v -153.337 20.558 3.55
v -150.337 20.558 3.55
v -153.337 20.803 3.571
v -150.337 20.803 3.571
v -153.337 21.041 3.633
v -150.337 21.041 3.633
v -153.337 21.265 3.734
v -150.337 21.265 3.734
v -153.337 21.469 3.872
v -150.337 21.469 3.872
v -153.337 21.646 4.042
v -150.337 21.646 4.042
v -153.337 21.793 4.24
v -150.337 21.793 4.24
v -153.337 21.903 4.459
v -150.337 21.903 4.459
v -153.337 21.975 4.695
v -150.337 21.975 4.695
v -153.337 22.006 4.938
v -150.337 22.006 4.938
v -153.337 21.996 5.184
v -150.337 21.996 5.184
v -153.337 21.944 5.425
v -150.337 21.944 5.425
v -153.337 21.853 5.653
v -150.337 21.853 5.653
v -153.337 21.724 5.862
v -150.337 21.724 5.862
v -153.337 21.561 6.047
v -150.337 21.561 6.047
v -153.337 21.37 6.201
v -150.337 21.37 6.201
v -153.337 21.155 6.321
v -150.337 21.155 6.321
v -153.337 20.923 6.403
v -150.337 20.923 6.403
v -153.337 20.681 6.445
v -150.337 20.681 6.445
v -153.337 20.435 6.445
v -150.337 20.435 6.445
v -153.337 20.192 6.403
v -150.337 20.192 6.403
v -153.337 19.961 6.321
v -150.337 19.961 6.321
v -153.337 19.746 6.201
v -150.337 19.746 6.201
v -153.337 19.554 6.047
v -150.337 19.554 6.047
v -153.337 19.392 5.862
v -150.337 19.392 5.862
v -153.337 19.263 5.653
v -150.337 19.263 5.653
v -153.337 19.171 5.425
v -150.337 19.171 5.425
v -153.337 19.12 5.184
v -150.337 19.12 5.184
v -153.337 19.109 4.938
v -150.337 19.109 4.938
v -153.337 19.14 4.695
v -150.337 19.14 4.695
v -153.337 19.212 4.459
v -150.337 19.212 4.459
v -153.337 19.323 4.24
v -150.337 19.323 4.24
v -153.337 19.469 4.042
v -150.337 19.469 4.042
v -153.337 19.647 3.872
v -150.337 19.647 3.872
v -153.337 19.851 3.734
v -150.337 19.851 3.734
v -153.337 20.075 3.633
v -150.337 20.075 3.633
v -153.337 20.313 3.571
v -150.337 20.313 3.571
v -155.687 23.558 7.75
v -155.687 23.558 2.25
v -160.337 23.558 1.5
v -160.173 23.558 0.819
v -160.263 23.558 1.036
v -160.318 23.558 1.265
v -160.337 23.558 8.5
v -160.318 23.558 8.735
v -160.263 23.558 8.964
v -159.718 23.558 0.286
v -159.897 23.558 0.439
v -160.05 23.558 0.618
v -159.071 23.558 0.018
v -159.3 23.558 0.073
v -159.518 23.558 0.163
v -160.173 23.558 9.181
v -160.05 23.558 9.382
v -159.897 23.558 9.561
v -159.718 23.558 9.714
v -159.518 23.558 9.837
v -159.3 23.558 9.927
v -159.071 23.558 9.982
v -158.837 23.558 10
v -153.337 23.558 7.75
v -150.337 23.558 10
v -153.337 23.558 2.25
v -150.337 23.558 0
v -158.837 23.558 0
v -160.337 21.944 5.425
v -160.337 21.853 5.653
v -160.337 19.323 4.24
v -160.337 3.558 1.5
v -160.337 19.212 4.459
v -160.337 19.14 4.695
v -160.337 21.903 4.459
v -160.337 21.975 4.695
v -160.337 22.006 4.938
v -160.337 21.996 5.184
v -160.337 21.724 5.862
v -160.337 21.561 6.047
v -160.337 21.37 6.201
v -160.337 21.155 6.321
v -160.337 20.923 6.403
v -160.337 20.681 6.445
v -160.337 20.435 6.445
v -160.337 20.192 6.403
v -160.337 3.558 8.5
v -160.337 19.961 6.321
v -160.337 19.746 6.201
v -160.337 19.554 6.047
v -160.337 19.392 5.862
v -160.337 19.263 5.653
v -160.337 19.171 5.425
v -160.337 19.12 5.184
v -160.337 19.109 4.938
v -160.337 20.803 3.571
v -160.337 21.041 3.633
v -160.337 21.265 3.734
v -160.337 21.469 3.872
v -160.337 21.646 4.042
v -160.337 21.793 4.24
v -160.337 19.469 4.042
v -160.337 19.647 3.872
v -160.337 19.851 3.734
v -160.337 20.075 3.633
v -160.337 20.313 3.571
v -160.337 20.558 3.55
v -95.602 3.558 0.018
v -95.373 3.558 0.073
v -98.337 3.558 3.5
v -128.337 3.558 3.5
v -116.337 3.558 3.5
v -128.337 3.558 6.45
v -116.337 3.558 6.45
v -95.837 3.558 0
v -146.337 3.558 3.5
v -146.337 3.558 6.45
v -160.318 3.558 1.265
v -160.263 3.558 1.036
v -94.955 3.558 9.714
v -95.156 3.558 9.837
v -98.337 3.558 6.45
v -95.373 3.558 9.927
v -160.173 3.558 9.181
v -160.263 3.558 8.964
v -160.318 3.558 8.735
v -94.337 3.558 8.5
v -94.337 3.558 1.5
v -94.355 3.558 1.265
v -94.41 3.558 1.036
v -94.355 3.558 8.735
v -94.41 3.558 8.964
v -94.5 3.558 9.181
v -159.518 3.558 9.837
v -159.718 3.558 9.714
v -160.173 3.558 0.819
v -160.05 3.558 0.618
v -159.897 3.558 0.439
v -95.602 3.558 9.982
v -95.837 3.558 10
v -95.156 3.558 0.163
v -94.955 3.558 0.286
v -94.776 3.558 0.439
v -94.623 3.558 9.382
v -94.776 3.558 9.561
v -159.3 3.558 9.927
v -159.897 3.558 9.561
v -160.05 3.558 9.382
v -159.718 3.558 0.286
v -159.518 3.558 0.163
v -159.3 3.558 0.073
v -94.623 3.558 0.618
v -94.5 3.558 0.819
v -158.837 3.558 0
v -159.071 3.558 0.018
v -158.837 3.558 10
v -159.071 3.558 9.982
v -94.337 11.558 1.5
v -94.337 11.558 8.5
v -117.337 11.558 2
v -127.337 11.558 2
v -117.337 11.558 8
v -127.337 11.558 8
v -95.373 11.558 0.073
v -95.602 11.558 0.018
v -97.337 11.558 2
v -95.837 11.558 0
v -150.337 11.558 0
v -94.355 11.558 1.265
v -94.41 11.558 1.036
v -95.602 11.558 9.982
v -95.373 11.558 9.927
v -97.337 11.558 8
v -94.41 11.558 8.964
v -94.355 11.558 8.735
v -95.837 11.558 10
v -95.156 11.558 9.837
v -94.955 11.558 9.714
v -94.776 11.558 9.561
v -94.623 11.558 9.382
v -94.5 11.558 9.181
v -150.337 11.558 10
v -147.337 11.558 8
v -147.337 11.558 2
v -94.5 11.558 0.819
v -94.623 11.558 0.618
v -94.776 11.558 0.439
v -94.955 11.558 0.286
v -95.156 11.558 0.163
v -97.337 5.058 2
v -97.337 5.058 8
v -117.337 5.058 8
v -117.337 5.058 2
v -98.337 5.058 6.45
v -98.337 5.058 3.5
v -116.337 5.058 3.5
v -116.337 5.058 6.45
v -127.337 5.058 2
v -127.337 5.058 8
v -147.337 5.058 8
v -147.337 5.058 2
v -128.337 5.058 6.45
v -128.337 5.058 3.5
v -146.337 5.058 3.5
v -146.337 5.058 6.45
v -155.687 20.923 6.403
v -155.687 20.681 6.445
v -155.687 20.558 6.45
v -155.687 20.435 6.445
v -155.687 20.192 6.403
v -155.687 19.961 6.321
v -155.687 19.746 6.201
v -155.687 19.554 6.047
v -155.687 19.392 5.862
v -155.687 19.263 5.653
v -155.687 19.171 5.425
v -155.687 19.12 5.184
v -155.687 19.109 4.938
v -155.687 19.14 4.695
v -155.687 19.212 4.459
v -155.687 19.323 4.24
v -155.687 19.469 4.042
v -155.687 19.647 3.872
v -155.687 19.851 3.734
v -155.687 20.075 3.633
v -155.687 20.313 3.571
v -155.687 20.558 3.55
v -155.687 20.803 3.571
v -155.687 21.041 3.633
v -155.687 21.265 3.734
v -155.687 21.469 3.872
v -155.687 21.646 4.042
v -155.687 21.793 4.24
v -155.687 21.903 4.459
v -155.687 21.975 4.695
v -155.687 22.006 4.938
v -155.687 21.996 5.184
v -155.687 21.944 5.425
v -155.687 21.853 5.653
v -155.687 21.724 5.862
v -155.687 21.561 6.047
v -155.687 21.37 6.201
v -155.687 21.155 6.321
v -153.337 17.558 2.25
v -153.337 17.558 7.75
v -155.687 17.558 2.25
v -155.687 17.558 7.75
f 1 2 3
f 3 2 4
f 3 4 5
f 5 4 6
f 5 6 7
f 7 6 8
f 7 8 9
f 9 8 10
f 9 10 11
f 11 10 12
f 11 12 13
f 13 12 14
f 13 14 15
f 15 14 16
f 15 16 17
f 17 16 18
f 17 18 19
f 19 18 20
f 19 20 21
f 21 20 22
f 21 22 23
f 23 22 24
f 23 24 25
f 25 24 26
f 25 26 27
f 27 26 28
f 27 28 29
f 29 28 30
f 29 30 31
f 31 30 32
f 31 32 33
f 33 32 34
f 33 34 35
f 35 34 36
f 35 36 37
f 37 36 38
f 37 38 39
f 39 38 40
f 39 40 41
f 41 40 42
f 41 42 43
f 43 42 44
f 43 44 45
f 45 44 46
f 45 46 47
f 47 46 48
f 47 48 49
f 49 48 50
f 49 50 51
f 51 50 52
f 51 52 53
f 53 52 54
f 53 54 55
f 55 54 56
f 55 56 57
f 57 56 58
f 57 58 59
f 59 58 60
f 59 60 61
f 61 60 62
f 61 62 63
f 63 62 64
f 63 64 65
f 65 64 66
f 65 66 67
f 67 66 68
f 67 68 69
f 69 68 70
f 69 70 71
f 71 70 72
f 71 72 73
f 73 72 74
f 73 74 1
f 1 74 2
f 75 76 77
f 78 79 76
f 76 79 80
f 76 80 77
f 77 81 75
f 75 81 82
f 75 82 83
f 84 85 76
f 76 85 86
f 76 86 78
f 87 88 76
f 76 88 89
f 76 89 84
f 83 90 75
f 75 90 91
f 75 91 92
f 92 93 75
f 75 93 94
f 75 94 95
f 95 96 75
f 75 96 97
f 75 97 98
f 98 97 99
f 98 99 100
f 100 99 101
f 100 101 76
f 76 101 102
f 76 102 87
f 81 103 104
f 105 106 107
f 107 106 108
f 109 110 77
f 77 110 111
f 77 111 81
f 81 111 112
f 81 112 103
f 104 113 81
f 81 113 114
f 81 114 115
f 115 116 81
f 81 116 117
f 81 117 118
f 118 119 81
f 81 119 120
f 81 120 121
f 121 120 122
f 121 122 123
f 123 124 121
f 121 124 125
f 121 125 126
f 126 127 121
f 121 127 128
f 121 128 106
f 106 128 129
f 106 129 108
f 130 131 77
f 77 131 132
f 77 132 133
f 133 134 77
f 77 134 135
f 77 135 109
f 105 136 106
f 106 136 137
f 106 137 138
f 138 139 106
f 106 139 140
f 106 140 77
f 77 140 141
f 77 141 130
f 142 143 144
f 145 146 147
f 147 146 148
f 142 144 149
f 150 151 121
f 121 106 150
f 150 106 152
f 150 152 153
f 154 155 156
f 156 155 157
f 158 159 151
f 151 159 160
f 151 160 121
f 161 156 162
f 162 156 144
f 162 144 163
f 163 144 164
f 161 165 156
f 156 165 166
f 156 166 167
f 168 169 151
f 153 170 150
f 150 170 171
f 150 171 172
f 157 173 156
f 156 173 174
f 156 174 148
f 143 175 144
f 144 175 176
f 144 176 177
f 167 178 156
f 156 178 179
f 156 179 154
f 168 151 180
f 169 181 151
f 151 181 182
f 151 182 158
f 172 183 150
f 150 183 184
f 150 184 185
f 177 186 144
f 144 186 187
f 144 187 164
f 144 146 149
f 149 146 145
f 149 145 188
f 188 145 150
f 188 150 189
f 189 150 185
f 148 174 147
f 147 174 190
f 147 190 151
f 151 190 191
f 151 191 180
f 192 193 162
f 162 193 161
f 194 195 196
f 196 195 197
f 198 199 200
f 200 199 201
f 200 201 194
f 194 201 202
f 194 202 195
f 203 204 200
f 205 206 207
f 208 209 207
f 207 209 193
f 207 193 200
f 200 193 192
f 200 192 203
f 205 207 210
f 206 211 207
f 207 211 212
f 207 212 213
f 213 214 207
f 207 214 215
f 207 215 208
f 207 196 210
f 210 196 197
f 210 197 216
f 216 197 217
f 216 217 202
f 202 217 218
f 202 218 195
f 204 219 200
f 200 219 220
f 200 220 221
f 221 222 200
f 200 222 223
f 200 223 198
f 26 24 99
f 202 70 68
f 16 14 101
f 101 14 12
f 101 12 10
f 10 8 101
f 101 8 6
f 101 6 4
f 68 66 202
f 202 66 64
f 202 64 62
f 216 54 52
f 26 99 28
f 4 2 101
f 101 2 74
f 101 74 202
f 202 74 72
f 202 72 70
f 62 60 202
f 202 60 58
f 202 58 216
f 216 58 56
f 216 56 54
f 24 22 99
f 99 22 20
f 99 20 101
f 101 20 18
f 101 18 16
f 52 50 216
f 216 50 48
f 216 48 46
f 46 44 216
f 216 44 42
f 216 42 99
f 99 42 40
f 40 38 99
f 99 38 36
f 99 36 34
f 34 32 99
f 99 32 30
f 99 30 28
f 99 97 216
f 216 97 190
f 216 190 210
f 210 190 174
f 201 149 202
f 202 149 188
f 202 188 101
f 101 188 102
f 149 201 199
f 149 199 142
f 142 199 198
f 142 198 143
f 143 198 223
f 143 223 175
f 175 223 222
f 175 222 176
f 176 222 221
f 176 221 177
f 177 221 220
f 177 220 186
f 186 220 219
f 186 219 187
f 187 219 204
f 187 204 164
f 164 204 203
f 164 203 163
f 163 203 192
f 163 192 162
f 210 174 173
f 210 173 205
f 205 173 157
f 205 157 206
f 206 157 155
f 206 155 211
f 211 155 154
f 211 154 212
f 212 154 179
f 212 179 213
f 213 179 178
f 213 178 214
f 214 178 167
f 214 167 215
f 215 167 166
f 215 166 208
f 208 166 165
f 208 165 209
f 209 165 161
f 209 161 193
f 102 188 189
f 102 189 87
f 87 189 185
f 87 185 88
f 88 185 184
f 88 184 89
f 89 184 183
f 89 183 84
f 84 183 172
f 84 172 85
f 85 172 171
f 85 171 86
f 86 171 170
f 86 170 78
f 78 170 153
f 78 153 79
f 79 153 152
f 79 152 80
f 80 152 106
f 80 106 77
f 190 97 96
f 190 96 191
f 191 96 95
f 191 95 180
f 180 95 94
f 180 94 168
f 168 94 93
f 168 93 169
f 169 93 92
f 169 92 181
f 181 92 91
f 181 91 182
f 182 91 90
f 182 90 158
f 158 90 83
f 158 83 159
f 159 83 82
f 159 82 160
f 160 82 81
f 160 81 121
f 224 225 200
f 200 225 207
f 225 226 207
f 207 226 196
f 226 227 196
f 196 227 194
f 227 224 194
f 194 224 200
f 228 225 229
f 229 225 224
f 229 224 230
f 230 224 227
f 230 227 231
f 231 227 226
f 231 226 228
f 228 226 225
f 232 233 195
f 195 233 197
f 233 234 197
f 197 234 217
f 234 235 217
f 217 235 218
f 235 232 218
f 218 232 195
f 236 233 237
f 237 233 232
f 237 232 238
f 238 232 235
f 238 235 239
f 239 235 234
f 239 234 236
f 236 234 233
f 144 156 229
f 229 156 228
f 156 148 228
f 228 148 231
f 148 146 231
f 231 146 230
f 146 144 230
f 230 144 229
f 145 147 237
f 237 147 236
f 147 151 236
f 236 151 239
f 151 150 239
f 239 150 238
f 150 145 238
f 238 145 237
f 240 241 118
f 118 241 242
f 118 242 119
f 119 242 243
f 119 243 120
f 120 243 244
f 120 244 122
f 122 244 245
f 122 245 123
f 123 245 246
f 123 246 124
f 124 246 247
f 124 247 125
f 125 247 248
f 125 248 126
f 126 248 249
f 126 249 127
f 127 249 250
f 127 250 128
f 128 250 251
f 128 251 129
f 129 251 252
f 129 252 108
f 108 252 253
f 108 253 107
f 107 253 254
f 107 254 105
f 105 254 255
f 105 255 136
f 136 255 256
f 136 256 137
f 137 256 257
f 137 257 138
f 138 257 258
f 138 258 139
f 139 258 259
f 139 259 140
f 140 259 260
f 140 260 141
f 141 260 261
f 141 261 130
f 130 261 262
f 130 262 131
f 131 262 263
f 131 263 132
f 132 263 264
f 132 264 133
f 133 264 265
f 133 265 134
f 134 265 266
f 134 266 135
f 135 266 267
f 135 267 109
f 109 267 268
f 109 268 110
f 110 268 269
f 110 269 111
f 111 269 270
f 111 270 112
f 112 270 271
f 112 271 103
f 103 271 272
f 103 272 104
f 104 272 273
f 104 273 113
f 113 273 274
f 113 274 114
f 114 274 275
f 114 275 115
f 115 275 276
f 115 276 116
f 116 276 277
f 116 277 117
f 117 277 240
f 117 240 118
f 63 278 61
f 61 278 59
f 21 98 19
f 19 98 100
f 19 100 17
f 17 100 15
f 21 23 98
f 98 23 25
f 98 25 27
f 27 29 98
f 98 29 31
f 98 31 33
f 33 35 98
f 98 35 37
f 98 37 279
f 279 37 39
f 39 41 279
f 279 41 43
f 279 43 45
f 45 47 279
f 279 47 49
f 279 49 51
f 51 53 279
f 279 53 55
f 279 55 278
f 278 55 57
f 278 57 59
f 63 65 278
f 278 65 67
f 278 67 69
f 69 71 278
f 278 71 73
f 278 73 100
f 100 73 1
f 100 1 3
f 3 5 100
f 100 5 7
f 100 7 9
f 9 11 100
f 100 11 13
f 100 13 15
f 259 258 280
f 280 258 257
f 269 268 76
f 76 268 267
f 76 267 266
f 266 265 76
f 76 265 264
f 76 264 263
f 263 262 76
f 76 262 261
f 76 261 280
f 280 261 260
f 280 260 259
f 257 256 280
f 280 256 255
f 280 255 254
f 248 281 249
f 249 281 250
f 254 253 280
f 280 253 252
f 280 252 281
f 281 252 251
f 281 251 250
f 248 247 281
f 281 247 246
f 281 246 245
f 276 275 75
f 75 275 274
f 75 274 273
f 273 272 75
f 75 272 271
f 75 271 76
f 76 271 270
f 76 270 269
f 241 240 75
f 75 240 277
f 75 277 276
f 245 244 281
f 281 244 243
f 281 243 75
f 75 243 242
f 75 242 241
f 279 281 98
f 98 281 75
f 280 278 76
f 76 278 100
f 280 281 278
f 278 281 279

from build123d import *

# Parameters (mm, degrees)
SALIENTE_EXTRUIR1_DEPTH = 10
REDONDEO5_R             = 1.5
CROQUIS3_W              = 20
CROQUIS3_H              = 6
CORTAR_EXTRUIR1_DEPTH   = 6.5
CROQUIS4_W              = 18
CROQUIS4_H              = 2.95
CORTAR_EXTRUIR2_DEPTH   = 1.5
CROQUIS5_R              = 1.45
CORTAR_EXTRUIR3_DEPTH   = 10
CROQUIS6_W              = 2.35
CROQUIS6_H              = 5.5
CORTAR_EXTRUIR4_DEPTH   = 6


with BuildPart() as part:
    # Croquis2 → Saliente-Extruir1 (new body)
    with BuildSketch(Plane.XY):
        Polygon((-160.336548935, 23.55779901), (-160.336548935, 3.55779901), (-94.336548935, 3.55779901), (-94.336548935, 11.55779901), (-150.336548935, 11.55779901), (-150.336548935, 23.55779901), align=None)
    extrude(amount=SALIENTE_EXTRUIR1_DEPTH)

    # Redondeo5
    redondeo5_edges = [part.edges().sort_by_distance(p)[0] for p in [
        (-94.336548935, 7.55779901, 10),
        (-94.336548935, 7.55779901, 0),
        (-160.336548935, 13.55779901, 10),
        (-160.336548935, 13.55779901, 0),
    ]]
    fillet(redondeo5_edges, radius=REDONDEO5_R)

    # Croquis3 → Cortar-Extruir1 (cut)
    with BuildSketch(Plane(origin=(0, 11.55779901, 0), x_dir=(1, 0, 0), z_dir=(0, 1, 0))):
        with Locations((-107.336548935, -5)):
            Rectangle(CROQUIS3_W, CROQUIS3_H)
        with Locations((-137.336548935, -5)):
            Rectangle(CROQUIS3_W, CROQUIS3_H)
    extrude(amount=-CORTAR_EXTRUIR1_DEPTH, mode=Mode.SUBTRACT)

    # Croquis4 → Cortar-Extruir2 (cut)
    with BuildSketch(Plane(origin=(0, 5.05779901, 0), x_dir=(1, 0, 0), z_dir=(0, 1, 0))):
        with Locations((-107.336548935, -4.975)):
            Rectangle(CROQUIS4_W, CROQUIS4_H)
        with Locations((-137.336548935, -4.975)):
            Rectangle(CROQUIS4_W, CROQUIS4_H)
    extrude(amount=-CORTAR_EXTRUIR2_DEPTH, mode=Mode.SUBTRACT)

    # Croquis5 → Cortar-Extruir3 (cut)
    with BuildSketch(Plane(origin=(-150.336548935, 0, 0), x_dir=(0, 0, -1), z_dir=(1, 0, 0))):
        with Locations((-5, 20.55779901)):
            Circle(CROQUIS5_R)
    extrude(amount=-CORTAR_EXTRUIR3_DEPTH, mode=Mode.SUBTRACT)

    # Croquis6 → Cortar-Extruir4 (cut)
    with BuildSketch(Plane(origin=(0, 23.55779901, 0), x_dir=(1, 0, 0), z_dir=(0, 1, 0))):
        with Locations((-154.511548935, -5)):
            Rectangle(CROQUIS6_W, CROQUIS6_H)
    extrude(amount=-CORTAR_EXTRUIR4_DEPTH, mode=Mode.SUBTRACT)


solid = part.part
